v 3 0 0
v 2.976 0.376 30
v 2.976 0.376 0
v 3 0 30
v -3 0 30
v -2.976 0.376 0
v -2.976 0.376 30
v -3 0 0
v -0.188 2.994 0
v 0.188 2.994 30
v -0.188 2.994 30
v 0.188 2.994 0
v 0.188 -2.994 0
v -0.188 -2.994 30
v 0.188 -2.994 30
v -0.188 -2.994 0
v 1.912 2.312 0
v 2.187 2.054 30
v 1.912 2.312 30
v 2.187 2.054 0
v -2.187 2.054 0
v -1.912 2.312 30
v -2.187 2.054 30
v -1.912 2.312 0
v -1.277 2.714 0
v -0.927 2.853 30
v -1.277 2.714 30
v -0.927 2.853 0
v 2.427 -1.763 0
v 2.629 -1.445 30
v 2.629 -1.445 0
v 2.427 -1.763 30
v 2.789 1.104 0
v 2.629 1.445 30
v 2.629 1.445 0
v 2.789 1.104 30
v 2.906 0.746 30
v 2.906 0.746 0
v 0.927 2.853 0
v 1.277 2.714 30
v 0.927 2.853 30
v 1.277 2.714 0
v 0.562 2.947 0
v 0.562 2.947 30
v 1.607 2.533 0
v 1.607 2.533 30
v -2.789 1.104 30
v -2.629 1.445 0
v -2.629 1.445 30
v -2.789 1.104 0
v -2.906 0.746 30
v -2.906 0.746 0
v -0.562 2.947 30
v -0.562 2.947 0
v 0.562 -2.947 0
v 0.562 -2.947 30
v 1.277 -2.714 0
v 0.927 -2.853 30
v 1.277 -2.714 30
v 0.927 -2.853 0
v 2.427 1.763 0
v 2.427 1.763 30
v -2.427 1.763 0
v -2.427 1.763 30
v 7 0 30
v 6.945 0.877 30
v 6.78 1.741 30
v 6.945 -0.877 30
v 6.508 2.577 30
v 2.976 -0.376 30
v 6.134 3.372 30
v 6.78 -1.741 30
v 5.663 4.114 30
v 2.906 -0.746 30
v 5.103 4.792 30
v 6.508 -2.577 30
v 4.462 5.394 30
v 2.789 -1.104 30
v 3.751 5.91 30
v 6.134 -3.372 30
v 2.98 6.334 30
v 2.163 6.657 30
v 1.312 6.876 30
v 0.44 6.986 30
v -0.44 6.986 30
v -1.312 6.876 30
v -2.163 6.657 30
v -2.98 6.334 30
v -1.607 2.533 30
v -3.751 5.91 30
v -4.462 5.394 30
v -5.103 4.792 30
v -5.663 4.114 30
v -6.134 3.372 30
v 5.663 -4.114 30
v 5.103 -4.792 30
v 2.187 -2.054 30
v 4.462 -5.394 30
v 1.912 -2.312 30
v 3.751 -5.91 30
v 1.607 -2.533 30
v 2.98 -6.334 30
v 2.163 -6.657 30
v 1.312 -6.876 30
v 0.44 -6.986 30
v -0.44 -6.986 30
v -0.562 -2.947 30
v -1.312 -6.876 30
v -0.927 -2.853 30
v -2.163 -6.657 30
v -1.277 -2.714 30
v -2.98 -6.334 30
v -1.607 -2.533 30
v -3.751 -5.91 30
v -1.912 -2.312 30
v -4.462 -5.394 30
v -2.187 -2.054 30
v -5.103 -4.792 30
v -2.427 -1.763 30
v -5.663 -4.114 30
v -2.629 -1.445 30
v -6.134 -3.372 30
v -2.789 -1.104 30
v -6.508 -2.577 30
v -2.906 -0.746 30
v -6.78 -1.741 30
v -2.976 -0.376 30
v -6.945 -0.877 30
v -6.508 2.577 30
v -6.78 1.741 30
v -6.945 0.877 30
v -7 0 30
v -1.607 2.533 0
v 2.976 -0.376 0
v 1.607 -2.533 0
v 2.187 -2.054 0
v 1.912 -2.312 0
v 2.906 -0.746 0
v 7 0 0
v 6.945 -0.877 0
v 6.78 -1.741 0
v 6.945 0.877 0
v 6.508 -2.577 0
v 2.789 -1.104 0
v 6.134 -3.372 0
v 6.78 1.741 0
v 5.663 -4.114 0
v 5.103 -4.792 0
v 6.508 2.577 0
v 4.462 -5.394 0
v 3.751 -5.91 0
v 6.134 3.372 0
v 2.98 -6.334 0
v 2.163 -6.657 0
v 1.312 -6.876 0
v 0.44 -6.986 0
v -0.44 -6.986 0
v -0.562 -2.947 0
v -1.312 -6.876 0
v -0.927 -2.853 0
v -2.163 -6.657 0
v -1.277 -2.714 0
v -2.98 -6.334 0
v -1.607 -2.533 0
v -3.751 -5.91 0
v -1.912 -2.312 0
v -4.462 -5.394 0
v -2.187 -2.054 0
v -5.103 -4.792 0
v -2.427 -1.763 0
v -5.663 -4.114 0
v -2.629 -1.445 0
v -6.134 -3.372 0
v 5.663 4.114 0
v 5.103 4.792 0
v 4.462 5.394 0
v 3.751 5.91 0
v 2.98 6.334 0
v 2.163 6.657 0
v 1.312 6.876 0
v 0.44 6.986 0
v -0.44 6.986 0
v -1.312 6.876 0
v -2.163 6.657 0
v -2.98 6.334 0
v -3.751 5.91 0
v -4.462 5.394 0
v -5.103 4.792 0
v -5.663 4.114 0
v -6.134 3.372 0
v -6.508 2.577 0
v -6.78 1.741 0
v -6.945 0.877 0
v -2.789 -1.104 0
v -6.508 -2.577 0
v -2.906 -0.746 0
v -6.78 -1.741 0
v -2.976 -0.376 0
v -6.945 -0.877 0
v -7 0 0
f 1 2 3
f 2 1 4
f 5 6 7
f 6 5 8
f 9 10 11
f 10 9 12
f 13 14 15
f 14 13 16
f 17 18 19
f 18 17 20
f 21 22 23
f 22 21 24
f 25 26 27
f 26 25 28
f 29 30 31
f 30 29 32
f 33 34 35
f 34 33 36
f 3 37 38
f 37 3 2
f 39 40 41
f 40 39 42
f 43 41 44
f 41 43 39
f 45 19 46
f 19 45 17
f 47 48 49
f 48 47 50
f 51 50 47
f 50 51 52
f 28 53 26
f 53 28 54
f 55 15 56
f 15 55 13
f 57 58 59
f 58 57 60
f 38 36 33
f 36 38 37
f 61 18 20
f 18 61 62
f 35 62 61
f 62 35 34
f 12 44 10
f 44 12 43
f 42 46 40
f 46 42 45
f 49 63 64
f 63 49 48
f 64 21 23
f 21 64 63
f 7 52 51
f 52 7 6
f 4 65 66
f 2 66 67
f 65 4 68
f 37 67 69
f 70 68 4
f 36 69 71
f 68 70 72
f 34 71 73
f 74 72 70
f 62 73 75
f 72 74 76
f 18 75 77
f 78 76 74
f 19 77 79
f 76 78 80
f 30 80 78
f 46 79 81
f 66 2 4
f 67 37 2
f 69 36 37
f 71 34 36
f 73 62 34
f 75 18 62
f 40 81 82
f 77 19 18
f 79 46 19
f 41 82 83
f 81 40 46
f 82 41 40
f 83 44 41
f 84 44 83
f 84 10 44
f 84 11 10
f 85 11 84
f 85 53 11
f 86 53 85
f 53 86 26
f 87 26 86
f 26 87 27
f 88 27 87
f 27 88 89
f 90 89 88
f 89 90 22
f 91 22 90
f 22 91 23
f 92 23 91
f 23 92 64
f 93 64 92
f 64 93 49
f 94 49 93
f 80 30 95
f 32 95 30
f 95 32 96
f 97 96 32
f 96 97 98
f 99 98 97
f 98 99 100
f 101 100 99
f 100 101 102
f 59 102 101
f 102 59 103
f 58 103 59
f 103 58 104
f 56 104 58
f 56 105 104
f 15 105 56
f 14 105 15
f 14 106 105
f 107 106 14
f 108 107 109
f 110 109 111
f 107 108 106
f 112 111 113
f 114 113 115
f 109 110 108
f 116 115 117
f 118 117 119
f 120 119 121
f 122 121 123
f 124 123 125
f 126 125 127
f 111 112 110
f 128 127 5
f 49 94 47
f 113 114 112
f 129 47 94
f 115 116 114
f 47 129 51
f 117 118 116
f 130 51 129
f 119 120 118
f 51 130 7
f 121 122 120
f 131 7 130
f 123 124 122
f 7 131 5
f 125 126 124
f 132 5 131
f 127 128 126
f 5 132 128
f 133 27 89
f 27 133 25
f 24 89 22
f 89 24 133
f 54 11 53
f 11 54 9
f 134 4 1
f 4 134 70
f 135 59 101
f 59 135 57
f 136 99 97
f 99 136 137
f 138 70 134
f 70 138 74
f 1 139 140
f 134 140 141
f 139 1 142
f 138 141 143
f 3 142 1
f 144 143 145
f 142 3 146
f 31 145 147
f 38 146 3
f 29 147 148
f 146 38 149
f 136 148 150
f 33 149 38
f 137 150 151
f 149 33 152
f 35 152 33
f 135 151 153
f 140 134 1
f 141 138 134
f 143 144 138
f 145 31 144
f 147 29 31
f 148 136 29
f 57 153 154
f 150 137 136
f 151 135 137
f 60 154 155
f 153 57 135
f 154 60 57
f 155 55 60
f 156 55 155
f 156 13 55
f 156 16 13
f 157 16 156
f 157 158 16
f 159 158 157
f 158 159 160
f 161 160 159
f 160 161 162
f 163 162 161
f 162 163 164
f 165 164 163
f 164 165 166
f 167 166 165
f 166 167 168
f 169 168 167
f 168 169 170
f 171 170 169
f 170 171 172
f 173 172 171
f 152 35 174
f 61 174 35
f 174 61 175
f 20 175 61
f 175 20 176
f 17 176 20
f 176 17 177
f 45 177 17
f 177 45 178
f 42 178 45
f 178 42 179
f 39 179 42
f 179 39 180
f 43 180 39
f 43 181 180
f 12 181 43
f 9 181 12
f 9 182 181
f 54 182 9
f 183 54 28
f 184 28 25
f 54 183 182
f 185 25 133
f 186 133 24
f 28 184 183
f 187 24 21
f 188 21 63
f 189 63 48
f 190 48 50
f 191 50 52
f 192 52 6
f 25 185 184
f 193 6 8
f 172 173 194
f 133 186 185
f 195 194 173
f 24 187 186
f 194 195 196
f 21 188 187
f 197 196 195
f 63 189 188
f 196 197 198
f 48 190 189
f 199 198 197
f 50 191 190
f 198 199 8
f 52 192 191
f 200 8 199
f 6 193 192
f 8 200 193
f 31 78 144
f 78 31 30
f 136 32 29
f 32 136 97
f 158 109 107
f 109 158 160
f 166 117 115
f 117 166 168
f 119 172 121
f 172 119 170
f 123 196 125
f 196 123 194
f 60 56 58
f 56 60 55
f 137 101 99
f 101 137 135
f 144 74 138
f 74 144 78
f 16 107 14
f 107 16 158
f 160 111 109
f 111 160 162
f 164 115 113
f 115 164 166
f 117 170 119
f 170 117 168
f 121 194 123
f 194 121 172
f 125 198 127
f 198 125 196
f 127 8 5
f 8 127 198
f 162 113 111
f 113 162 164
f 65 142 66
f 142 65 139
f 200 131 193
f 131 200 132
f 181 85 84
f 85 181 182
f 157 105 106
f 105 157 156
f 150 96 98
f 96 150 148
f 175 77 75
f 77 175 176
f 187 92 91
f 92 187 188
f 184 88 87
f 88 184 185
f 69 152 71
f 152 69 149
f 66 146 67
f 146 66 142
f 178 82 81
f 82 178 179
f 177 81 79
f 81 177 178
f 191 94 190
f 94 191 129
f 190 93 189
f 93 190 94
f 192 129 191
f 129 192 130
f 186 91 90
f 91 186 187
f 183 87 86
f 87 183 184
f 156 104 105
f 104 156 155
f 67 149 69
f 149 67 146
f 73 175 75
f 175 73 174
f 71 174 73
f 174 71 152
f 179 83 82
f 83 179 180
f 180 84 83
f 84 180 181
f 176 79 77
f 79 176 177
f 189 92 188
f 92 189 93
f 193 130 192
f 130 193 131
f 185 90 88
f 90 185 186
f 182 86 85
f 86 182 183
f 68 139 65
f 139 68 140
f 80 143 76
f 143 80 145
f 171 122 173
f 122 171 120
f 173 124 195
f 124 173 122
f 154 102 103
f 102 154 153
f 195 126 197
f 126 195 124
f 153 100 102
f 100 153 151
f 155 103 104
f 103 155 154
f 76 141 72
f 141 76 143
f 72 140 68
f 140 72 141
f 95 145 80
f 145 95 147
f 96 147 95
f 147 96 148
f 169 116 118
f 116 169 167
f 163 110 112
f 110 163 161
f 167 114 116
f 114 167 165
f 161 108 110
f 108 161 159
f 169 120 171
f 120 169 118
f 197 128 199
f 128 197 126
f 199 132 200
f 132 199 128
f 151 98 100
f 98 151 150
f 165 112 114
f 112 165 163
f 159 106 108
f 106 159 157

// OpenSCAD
$fn = 50;


difference() {
	union() {
		cylinder(h = 30, r = 7.0000000000);
	}
	union() {
		cylinder(h = 30, r = 3.0000000000);
		cylinder(h = 30, r = 3.0000000000);
		cylinder(h = 30, r = 1.5000000000);
		cylinder(h = 30, r = 1.5000000000);
		cylinder(h = 30, r = 1.5000000000);
		cylinder(h = 30, r = 1.5000000000);
		cylinder(h = 30, r = 1.5000000000);
		cylinder(h = 30, r = 1.5000000000);
	}
}
